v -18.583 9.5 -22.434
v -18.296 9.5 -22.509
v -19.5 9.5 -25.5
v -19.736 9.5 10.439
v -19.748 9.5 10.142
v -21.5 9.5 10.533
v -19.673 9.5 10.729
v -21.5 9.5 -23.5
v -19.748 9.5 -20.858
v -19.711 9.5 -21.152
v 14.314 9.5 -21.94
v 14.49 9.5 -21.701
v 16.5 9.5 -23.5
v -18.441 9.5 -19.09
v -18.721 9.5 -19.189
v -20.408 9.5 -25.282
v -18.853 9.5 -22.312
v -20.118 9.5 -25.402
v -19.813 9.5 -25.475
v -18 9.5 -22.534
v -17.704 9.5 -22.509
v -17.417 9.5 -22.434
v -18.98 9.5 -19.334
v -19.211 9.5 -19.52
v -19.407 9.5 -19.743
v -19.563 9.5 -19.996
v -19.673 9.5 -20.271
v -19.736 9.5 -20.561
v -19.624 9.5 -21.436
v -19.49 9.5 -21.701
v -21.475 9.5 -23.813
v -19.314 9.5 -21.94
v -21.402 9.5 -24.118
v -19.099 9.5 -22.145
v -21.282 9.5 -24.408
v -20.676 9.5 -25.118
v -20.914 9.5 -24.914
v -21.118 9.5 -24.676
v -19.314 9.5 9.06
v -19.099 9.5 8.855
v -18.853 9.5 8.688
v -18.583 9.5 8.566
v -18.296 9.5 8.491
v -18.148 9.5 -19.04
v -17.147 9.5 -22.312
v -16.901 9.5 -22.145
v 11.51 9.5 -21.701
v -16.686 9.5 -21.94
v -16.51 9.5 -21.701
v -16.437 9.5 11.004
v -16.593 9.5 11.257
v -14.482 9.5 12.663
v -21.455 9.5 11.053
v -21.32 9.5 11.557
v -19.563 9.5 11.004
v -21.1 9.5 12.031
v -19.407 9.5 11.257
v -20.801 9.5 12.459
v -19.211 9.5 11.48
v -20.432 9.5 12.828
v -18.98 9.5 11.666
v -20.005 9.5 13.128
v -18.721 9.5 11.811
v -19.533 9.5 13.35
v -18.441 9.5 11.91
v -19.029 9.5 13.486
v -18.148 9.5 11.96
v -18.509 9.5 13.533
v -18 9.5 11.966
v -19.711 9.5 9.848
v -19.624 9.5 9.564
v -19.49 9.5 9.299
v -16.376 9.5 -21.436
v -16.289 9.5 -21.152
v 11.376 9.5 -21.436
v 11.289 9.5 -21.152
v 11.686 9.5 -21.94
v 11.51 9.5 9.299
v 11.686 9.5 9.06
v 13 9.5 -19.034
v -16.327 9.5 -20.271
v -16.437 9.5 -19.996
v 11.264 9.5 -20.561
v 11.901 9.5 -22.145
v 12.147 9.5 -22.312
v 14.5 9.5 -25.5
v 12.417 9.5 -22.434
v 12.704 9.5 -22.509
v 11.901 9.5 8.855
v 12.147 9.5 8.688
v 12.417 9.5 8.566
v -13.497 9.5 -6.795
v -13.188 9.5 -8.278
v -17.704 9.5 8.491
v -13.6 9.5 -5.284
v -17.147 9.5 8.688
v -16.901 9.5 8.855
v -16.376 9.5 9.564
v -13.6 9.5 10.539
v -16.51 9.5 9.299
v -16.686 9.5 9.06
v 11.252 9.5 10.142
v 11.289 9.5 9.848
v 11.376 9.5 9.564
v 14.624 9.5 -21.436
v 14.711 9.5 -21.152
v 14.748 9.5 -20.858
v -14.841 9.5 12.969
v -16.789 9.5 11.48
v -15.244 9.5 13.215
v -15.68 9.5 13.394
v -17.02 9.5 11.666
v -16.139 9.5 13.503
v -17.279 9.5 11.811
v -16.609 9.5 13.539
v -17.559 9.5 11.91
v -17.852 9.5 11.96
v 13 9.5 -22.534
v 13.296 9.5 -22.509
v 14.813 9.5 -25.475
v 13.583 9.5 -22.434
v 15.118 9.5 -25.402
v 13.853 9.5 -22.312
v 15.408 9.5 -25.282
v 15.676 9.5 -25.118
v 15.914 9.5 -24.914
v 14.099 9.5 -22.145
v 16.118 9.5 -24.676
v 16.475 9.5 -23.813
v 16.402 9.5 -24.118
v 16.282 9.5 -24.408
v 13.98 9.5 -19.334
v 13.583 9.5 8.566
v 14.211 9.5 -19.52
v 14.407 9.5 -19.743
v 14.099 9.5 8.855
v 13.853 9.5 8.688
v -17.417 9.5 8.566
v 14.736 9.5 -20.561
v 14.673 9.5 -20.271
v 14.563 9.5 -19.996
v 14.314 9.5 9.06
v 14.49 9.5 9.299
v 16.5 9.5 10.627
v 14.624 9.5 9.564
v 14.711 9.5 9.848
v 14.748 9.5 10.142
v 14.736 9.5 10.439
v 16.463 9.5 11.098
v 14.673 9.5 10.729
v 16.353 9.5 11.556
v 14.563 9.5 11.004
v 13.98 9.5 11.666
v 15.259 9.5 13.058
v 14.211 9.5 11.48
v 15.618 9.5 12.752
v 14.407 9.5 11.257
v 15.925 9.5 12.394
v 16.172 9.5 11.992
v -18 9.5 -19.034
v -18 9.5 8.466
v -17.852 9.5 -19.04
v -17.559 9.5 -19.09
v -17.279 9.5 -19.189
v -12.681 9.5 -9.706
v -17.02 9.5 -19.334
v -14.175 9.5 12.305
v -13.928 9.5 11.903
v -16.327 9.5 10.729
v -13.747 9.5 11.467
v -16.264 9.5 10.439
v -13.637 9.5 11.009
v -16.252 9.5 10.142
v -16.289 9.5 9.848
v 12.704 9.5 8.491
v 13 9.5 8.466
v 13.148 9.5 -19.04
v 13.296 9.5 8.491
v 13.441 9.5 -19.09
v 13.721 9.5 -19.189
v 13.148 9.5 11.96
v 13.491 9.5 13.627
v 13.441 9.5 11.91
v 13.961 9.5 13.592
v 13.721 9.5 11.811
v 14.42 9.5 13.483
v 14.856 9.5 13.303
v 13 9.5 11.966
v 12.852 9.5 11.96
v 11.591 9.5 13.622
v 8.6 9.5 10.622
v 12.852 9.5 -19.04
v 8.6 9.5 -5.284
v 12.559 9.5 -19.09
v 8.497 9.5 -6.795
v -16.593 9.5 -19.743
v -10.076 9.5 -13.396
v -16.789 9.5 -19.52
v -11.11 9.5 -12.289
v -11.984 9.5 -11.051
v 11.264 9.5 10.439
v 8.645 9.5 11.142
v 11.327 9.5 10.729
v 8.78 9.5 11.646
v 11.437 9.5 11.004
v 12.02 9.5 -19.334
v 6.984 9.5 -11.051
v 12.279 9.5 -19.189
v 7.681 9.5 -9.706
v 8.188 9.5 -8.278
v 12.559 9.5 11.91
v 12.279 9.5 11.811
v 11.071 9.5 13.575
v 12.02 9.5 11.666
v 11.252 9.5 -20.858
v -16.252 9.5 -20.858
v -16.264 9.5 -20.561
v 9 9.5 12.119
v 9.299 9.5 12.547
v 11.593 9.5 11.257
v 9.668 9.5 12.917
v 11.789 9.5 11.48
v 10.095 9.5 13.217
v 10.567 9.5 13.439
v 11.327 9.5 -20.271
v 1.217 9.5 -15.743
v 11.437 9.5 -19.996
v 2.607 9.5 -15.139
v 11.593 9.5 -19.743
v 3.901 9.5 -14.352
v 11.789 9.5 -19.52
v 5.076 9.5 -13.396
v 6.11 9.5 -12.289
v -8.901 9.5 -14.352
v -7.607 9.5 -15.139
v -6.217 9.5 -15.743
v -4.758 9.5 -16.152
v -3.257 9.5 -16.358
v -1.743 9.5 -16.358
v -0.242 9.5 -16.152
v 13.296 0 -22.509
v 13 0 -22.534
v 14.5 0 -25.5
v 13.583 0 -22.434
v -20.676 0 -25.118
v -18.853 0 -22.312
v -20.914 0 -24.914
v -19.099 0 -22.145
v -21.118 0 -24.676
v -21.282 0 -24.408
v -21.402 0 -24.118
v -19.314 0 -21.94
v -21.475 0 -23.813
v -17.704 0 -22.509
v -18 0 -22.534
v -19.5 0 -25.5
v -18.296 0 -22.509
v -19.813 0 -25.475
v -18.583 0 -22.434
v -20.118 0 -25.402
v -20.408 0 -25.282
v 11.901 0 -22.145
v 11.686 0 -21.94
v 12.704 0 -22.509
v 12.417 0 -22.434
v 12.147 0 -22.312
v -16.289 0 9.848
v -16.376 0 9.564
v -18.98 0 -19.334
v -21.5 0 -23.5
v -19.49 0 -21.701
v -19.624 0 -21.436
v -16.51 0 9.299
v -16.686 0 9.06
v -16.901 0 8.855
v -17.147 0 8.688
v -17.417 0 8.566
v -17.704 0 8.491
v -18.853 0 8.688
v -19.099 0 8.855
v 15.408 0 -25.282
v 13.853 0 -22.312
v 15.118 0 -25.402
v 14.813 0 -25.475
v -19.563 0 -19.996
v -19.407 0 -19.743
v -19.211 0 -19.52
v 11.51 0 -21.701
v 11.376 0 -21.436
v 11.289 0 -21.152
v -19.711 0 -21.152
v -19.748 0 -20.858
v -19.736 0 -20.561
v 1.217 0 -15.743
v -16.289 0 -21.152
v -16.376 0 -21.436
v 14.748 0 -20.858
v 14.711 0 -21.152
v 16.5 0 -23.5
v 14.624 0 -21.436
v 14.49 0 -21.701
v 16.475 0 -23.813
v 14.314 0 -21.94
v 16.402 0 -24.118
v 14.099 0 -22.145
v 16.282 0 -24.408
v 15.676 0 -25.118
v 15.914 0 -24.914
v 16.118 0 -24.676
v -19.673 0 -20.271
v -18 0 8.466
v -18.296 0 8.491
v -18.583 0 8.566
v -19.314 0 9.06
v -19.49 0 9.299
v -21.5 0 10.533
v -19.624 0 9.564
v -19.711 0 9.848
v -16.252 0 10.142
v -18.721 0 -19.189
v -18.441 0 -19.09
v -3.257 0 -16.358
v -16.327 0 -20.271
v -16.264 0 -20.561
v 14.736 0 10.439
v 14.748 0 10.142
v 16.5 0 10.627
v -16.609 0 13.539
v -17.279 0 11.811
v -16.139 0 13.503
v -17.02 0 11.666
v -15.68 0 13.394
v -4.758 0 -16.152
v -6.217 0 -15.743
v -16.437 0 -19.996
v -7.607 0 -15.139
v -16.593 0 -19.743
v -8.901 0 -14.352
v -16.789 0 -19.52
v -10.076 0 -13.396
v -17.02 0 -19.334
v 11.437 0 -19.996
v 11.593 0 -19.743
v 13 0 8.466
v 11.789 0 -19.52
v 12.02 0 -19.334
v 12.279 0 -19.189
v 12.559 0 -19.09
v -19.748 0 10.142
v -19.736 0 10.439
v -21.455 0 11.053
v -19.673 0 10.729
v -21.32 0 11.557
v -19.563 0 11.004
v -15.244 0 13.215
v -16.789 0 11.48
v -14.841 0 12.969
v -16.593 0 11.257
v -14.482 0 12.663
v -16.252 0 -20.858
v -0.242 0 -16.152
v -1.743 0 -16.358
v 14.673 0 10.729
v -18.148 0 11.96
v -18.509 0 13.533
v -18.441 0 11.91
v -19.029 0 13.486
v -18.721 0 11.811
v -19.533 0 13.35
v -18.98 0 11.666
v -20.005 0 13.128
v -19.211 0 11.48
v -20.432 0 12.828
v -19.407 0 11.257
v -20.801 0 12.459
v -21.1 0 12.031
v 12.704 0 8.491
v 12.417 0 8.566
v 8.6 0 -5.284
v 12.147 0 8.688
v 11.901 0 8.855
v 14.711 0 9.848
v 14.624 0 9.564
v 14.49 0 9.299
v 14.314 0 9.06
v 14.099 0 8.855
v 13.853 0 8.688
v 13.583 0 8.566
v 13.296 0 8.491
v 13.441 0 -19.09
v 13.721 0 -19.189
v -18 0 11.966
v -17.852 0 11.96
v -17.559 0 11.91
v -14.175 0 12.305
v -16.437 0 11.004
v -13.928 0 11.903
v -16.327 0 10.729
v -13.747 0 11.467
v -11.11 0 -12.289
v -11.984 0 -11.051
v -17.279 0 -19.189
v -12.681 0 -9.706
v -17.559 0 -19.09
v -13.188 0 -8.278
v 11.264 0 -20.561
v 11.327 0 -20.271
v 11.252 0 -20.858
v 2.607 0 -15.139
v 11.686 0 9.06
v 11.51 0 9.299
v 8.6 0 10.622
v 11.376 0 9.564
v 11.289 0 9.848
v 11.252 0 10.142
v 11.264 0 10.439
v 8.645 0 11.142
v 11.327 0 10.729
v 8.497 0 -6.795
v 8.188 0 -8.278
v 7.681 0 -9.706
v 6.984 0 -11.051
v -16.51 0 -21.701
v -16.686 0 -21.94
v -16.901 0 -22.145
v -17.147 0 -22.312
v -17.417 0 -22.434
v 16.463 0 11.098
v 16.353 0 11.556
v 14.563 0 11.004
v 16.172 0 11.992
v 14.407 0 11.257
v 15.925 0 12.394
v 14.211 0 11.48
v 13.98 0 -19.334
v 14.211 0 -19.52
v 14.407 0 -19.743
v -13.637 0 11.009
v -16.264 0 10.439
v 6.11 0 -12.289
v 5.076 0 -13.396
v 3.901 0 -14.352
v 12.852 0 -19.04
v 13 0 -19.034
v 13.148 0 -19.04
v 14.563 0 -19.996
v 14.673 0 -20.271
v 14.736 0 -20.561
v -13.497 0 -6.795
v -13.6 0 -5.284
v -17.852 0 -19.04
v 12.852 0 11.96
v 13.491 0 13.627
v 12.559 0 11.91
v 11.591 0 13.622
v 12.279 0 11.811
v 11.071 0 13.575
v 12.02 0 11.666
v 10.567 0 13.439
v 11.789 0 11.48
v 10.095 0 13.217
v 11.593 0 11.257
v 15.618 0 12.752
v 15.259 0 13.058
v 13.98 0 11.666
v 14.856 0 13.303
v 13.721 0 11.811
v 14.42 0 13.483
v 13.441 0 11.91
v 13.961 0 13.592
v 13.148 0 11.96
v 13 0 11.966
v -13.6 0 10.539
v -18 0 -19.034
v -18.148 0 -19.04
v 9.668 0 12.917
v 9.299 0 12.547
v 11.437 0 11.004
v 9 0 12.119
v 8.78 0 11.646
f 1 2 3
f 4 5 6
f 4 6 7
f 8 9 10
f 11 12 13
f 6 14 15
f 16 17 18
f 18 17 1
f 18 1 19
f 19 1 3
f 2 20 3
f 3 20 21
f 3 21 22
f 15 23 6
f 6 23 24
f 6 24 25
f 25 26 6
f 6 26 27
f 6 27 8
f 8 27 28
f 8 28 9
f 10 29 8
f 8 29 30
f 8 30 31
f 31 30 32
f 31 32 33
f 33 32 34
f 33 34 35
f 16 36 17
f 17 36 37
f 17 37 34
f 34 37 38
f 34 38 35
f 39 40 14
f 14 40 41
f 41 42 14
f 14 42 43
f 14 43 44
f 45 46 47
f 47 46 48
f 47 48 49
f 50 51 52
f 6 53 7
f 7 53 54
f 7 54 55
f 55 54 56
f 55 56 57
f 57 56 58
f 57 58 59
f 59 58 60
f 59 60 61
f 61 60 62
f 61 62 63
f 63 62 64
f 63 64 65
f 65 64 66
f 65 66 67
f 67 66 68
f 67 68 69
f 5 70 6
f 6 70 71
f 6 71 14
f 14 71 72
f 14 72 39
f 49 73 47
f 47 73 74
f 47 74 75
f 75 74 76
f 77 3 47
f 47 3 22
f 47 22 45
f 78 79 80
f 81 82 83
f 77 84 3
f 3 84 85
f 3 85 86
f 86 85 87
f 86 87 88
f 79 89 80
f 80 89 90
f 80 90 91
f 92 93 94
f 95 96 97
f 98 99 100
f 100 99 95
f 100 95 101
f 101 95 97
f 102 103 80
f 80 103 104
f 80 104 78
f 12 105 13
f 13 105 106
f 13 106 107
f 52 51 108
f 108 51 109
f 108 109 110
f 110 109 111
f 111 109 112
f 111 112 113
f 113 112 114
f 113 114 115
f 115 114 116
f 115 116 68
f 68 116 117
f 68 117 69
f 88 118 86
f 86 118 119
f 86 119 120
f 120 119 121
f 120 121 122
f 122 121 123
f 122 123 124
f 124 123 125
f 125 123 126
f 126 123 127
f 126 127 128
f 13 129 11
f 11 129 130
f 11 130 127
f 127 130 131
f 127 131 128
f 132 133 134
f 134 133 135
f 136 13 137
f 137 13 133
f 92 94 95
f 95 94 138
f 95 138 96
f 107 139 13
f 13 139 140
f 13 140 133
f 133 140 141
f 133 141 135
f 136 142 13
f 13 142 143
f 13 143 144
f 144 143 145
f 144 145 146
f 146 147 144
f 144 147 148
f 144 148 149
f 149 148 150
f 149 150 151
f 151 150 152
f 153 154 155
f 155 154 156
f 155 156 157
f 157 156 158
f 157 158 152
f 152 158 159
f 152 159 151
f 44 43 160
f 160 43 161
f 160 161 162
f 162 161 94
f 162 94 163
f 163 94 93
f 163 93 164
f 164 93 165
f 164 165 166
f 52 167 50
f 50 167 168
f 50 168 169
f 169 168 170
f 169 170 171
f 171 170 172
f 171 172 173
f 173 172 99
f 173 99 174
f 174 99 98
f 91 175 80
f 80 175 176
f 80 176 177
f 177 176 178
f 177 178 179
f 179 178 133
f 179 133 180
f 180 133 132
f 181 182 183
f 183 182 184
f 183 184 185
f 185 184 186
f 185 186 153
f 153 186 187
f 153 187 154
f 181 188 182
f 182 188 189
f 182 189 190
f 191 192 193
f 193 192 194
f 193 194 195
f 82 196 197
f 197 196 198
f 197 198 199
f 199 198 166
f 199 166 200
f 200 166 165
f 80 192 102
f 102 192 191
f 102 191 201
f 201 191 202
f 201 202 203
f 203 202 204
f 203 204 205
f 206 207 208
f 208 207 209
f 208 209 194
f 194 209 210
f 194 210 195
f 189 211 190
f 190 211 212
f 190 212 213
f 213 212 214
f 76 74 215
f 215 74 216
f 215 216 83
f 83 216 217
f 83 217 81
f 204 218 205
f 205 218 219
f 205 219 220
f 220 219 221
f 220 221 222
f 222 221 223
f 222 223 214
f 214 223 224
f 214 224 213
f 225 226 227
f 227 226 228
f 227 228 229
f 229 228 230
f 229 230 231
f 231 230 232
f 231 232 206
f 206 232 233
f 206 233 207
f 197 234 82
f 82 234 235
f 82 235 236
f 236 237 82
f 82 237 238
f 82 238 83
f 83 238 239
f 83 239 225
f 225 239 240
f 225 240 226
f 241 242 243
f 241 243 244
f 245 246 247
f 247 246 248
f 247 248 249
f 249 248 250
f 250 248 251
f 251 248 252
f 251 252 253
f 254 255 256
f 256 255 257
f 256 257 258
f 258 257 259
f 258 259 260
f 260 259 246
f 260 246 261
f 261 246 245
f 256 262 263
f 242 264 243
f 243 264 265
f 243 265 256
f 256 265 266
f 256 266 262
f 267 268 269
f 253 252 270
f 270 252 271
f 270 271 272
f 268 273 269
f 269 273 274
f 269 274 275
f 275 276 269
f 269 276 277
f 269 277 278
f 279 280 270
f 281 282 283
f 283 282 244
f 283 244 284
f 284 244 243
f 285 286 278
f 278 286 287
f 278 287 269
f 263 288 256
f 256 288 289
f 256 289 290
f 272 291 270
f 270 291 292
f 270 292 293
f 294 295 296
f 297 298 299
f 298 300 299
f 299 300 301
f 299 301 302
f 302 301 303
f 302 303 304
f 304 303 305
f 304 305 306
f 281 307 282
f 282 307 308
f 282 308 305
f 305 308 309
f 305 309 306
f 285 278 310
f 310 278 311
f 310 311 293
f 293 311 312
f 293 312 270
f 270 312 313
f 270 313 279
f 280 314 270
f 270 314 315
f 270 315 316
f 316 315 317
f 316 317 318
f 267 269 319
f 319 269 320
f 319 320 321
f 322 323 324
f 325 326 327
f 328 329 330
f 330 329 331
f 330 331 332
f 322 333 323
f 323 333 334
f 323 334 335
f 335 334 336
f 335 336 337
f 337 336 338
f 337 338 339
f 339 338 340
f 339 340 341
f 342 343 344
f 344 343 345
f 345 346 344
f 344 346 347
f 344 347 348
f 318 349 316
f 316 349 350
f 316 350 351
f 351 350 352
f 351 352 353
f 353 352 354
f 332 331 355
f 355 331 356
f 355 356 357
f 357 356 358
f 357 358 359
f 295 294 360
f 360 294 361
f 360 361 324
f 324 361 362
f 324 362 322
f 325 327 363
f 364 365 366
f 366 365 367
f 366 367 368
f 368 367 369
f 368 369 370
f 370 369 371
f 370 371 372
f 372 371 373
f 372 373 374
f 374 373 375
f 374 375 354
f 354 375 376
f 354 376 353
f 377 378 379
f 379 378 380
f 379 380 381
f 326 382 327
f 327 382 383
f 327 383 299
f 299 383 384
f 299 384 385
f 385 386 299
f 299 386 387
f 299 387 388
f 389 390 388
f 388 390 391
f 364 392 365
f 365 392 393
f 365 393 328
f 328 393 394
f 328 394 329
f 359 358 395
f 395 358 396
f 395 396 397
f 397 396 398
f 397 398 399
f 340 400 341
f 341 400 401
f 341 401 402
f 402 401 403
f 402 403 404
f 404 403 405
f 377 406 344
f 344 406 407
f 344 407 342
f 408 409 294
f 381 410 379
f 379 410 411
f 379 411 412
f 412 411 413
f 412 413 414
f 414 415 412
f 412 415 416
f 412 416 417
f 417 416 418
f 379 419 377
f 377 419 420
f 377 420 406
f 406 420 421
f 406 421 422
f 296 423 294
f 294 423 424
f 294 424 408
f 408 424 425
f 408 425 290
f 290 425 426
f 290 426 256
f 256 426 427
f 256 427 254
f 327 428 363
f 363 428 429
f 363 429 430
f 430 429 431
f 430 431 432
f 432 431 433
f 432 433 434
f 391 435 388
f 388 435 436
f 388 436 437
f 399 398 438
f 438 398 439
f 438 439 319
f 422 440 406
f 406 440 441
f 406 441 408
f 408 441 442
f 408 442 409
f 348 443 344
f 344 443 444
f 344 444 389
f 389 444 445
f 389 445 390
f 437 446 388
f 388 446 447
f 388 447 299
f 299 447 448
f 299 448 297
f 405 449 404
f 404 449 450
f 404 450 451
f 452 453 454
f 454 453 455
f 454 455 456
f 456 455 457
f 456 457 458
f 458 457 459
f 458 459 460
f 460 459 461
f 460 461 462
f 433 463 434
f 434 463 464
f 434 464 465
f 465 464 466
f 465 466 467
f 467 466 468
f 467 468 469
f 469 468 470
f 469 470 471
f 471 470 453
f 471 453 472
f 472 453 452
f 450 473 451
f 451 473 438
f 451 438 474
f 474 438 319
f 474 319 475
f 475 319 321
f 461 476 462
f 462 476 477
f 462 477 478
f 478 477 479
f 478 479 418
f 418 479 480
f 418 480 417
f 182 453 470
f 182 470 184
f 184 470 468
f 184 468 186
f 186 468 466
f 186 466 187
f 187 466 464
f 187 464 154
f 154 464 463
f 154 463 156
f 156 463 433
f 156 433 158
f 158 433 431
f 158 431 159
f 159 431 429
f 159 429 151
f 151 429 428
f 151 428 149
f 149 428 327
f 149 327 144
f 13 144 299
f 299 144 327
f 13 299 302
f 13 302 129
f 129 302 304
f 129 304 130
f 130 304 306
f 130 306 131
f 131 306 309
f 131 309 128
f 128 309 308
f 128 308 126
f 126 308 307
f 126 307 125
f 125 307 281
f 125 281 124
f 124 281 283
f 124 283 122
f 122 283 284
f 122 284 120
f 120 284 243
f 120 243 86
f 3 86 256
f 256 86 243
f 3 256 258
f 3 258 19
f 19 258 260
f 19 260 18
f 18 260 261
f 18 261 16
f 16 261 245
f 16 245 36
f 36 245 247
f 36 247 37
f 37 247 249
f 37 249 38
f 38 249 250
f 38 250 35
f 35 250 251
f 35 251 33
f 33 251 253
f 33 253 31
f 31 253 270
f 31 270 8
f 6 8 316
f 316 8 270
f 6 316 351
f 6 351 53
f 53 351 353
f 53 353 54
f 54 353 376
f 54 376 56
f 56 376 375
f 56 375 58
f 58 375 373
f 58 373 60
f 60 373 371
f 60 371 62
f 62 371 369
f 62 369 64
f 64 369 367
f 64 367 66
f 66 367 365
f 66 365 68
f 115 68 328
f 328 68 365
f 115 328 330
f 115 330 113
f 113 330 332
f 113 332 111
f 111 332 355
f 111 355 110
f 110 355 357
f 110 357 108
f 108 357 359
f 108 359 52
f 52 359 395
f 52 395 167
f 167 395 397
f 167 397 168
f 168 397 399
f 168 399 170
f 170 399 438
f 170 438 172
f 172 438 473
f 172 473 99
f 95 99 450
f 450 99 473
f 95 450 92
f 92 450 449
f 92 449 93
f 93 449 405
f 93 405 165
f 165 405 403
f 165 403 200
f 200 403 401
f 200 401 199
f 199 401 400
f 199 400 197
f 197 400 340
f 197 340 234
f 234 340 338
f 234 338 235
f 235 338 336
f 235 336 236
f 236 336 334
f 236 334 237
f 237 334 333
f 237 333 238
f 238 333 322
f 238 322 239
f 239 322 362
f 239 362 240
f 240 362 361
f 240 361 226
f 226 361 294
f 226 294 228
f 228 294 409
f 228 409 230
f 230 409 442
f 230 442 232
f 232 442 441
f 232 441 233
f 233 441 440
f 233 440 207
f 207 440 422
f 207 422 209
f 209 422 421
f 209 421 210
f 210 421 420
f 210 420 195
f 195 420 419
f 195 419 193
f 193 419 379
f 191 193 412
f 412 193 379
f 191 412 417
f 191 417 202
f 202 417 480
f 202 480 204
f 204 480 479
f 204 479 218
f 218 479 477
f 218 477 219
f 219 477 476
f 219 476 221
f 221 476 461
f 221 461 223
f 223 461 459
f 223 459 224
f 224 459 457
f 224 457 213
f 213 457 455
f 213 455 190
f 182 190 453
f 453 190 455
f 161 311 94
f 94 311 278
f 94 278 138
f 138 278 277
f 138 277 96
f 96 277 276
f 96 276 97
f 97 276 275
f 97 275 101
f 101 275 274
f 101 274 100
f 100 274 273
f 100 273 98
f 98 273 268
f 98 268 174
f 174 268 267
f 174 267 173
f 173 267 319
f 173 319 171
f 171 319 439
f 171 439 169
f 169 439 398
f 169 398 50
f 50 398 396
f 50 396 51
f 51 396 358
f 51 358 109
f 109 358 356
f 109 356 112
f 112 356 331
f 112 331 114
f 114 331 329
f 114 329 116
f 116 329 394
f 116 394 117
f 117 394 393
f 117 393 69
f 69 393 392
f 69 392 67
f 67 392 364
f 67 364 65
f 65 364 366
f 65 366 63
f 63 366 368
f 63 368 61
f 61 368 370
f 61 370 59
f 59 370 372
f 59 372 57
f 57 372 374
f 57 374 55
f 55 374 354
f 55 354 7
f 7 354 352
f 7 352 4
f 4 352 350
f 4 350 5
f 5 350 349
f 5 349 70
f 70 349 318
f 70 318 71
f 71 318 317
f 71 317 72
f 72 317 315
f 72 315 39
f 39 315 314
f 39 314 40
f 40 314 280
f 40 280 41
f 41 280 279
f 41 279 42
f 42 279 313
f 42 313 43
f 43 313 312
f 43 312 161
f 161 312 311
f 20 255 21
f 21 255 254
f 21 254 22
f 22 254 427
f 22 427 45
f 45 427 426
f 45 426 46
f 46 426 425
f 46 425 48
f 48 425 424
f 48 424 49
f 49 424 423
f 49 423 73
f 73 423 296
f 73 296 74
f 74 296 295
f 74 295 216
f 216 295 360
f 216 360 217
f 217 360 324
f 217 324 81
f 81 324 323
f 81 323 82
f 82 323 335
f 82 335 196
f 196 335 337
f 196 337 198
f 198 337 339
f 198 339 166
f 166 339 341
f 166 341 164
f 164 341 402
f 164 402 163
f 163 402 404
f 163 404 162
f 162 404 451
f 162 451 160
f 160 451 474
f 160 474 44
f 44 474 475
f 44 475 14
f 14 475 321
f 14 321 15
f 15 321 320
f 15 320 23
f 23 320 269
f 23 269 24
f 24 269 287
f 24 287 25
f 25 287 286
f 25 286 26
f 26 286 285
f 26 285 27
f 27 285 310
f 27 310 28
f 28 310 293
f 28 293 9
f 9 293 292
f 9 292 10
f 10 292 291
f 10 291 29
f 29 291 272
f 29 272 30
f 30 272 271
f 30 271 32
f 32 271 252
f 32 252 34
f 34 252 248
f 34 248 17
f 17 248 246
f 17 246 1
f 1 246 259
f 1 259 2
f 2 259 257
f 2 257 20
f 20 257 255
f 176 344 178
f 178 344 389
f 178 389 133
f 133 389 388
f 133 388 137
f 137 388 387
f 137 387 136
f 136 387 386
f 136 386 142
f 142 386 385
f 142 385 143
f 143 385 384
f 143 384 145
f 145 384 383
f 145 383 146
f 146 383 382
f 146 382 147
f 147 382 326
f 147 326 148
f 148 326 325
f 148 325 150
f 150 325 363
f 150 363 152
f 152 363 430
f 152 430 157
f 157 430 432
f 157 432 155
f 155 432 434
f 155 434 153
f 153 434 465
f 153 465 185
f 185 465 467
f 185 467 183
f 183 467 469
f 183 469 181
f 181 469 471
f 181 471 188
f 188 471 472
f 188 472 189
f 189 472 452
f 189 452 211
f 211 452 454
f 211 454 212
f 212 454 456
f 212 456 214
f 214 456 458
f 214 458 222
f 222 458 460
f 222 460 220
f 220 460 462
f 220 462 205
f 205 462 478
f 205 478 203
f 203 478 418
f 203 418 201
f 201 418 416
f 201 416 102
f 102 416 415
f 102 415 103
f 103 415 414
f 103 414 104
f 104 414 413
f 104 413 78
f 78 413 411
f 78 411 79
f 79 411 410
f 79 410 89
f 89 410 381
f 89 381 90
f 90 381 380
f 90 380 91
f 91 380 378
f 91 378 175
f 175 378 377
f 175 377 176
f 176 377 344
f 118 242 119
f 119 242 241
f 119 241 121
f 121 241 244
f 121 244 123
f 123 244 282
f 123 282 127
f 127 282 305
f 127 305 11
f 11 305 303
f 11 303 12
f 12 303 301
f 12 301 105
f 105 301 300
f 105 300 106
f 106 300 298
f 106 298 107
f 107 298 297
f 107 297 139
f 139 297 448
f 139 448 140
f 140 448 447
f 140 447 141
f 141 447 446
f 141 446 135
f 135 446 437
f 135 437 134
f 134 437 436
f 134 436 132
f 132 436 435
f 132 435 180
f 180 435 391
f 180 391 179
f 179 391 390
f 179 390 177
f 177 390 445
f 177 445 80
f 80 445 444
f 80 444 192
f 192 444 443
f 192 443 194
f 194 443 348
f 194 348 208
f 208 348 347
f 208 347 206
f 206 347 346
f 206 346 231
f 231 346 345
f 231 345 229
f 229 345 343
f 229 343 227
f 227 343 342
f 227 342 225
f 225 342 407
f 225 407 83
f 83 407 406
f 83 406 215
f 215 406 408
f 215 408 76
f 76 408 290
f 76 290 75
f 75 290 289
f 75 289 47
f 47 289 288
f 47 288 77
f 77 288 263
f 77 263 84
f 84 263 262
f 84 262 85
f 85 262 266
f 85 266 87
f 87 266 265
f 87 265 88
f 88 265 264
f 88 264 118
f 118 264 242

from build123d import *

# Parameters (mm, degrees)
CROQUIS1_R              = 1.75
SALIENTE_EXTRUIR1_DEPTH = 9.5


with BuildPart() as part:
    # Croquis1 → Saliente-Extruir1 (new body)
    with BuildSketch(Plane(origin=(0, 0, 0), x_dir=(1, 0, 0), z_dir=(0, 1, 0))):
        with BuildLine():
            Line((16.499992006, -9.994055242), (16.499992006, -10.627447868))
            ThreePointArc((16.499992006, -10.627447868), (15.618184374, -12.751891582), (13.491151278, -13.627434842))
            Line((13.491151278, -13.627434842), (11.591163268, -13.621835726))
            ThreePointArc((11.591163268, -13.621835726), (9.475560282, -12.740041121), (8.600003995, -10.621848752))
            Line((8.600003995, -10.621848752), (8.600003995, 5.283742))
            ThreePointArc((8.600003995, 5.283742), (-2.499996004, 16.383742), (-13.599996004, 5.283742))
            Line((-13.599996004, 5.283742), (-13.599996004, -10.538745555))
            ThreePointArc((-13.599996004, -10.538745555), (-14.481803636, -12.663189268), (-16.608836732, -13.538732529))
            Line((-16.608836732, -13.538732529), (-18.508832643, -13.533133389))
            ThreePointArc((-18.508832643, -13.533133389), (-20.624435657, -12.651338755), (-21.499991915, -10.533146335))
            Line((-21.499991915, -10.533146335), (-21.499991004, 23.50000907))
            ThreePointArc((-21.499991004, 23.50000907), (-20.914206292, 24.914222817), (-19.499993974, 25.50001098))
            Line((-19.499993974, 25.50001098), (14.499990025, 25.50001098))
            ThreePointArc((14.499990025, 25.50001098), (15.914205688, 24.914224662), (16.499992996, 23.500009))
            Line((16.499992996, 23.500009), (16.499992006, -7.988673633))
            Line((16.499992006, -7.988673633), (16.499992006, -9.994055242))
        make_face()
        with Locations(Location((-17.999996004, -10.216258, 0), (0, 0, 270))):
            Circle(CROQUIS1_R, mode=Mode.SUBTRACT)
        with Locations(Location((-17.999996004, 20.783742, 0), (0, 0, 270))):
            Circle(CROQUIS1_R, mode=Mode.SUBTRACT)
        with Locations(Location((13.000003996, -10.216258, 0), (0, 0, 270))):
            Circle(CROQUIS1_R, mode=Mode.SUBTRACT)
        with Locations(Location((13.000003996, 20.783742, 0), (0, 0, 270))):
            Circle(CROQUIS1_R, mode=Mode.SUBTRACT)
    extrude(amount=SALIENTE_EXTRUIR1_DEPTH)


solid = part.part
